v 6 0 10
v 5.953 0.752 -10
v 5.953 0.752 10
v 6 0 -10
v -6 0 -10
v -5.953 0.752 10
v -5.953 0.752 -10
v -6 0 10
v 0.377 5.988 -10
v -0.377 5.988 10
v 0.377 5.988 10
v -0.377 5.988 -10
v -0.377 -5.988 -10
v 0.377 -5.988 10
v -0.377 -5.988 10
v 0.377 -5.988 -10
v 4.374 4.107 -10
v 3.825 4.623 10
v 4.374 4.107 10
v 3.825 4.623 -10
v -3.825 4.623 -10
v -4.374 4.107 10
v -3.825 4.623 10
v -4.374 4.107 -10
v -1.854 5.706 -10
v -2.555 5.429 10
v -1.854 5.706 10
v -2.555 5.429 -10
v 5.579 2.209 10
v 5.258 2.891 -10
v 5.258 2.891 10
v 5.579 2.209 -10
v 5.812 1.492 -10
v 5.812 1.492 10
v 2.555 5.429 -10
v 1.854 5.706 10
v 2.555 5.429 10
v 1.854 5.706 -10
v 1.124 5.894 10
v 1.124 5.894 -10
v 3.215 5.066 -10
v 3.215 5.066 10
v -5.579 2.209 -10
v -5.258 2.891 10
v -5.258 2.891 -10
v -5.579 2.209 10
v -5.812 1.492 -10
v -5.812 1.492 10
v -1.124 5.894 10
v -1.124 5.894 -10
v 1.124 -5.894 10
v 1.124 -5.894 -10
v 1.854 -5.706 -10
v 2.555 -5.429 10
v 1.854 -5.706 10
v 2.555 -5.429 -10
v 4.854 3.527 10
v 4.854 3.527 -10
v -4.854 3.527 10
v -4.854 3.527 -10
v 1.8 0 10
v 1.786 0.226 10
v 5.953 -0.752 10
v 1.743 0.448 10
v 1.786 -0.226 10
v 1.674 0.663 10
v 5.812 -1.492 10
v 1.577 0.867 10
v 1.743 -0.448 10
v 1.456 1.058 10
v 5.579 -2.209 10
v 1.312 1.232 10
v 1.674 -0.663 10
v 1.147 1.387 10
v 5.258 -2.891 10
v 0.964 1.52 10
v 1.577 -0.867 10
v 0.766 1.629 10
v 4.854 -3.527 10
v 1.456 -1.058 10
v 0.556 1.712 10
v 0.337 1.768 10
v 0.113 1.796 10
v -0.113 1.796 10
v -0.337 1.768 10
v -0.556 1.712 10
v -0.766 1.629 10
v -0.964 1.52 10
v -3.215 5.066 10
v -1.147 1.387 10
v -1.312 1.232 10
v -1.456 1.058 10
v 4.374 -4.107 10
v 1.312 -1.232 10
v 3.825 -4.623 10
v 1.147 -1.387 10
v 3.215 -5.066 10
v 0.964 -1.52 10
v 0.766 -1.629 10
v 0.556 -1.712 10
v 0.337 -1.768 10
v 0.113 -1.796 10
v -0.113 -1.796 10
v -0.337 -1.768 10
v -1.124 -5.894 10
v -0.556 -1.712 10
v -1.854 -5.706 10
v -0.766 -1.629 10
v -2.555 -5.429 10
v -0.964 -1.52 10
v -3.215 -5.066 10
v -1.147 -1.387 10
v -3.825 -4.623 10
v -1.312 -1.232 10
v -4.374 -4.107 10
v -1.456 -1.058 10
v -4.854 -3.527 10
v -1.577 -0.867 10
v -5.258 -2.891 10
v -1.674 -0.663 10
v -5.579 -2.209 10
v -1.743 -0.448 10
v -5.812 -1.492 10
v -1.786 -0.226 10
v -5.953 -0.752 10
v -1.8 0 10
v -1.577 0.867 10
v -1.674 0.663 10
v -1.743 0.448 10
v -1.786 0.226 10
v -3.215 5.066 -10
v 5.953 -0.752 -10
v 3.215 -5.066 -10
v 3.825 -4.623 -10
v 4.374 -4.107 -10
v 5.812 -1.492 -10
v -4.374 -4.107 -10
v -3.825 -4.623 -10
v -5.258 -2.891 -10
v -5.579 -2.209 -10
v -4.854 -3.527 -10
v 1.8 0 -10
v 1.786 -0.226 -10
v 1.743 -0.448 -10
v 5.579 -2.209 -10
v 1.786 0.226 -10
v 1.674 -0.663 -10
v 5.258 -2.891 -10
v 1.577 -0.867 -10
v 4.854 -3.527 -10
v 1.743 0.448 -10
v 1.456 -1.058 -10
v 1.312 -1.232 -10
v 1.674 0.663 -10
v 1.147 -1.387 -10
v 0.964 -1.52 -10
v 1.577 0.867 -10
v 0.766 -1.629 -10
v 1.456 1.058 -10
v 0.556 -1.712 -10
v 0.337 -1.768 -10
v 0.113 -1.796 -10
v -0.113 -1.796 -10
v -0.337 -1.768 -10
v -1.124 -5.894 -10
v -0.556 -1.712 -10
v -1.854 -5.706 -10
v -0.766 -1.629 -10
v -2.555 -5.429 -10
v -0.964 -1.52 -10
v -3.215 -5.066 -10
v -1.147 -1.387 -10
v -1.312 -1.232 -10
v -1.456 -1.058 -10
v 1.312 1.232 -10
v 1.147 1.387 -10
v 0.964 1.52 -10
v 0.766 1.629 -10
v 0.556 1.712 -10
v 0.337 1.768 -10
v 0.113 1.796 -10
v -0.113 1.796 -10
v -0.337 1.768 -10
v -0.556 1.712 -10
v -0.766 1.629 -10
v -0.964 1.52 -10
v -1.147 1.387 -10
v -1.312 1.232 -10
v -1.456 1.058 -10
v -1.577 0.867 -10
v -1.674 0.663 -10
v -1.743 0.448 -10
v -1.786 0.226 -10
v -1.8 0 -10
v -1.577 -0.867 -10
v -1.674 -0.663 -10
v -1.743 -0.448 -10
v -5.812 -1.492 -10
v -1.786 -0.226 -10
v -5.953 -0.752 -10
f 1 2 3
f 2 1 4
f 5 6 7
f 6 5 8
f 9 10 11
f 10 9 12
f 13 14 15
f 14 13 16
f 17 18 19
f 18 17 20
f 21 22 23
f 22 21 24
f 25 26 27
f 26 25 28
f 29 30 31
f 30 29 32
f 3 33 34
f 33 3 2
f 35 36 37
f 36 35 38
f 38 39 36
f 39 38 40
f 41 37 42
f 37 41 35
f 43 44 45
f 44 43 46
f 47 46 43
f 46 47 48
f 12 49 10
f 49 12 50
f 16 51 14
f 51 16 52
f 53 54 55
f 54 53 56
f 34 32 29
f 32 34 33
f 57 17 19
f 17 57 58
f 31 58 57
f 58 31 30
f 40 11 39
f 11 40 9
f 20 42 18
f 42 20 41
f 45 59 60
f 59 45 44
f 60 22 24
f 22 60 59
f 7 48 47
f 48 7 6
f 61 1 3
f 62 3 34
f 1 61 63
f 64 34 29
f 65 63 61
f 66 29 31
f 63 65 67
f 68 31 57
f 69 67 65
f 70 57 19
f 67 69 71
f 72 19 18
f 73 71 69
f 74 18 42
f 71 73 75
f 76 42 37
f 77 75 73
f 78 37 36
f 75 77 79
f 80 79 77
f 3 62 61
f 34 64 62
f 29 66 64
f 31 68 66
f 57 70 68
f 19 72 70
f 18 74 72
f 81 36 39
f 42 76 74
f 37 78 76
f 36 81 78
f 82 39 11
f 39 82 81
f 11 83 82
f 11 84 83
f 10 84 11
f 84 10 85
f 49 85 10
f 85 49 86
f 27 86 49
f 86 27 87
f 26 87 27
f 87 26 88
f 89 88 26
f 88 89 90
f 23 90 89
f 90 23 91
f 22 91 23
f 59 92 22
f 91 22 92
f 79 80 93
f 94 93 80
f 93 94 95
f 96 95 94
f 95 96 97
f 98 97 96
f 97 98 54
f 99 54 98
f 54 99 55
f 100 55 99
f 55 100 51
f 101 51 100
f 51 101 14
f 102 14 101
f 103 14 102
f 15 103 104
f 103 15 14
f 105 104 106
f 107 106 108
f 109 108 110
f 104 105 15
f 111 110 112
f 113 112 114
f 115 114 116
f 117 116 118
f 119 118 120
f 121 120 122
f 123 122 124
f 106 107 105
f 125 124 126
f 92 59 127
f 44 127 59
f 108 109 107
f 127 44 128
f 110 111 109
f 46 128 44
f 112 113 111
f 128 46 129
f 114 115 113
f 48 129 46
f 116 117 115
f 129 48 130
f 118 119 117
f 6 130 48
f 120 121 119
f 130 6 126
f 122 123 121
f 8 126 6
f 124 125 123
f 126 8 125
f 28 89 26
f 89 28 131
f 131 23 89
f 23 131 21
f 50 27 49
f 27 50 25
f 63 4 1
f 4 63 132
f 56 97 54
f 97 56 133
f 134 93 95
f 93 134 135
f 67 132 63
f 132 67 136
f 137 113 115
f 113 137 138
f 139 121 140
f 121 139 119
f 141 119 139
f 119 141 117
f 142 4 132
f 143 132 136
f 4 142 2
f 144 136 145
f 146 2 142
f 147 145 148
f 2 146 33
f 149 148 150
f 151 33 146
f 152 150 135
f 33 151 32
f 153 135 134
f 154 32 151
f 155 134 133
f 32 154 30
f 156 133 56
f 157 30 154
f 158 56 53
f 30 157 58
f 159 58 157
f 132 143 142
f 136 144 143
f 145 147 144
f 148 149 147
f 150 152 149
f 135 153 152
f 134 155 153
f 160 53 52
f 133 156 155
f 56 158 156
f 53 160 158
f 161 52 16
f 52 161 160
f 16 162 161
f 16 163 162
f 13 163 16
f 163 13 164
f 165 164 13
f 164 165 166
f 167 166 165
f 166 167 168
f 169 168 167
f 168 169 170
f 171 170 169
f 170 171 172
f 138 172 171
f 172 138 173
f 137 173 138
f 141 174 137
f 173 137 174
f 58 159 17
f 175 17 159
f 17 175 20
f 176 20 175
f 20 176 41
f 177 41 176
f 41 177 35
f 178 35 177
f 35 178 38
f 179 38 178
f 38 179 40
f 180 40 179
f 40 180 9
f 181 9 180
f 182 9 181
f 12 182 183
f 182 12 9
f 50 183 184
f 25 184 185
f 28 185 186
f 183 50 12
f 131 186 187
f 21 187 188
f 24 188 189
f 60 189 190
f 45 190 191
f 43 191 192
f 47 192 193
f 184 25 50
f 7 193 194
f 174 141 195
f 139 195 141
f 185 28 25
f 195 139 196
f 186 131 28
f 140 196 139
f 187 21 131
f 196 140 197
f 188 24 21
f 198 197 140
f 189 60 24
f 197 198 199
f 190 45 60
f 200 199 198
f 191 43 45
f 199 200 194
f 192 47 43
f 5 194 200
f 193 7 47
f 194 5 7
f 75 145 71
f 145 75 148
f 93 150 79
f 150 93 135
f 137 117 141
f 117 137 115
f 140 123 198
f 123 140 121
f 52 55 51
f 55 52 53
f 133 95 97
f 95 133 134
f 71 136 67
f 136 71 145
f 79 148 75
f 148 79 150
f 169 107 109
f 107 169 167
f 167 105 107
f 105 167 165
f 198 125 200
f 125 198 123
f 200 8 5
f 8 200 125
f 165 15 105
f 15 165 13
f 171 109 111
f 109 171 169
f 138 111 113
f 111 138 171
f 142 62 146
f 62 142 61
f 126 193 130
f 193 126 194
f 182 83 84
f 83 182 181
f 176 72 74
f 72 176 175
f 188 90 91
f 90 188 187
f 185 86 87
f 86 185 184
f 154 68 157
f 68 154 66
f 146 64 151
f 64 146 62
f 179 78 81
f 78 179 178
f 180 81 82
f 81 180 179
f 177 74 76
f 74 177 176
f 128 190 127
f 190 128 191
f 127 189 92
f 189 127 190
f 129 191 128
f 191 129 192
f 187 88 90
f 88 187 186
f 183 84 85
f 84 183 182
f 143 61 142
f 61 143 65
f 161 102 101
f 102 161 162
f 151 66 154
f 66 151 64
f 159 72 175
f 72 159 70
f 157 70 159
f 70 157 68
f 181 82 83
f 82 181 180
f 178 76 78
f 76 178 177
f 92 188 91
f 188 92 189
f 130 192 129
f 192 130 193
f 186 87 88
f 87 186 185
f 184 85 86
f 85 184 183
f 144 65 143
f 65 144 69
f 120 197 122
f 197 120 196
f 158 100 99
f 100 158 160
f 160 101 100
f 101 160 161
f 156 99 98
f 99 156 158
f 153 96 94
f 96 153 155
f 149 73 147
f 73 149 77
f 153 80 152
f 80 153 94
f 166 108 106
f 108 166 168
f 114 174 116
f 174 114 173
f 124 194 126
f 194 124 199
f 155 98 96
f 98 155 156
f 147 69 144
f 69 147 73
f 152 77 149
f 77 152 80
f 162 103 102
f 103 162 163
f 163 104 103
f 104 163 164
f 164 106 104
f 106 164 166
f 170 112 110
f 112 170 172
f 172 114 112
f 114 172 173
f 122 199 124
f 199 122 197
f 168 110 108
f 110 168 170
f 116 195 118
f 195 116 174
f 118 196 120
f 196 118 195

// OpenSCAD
$fn = 50;


difference() {
	union() {
		translate(v = [0, 0, -10.0000000000]) {
			cylinder(h = 20, r = 6.0000000000);
		}
	}
	union() {
		translate(v = [0, 0, -100.0000000000]) {
			cylinder(h = 200, r = 1.8000000000);
		}
	}
}
